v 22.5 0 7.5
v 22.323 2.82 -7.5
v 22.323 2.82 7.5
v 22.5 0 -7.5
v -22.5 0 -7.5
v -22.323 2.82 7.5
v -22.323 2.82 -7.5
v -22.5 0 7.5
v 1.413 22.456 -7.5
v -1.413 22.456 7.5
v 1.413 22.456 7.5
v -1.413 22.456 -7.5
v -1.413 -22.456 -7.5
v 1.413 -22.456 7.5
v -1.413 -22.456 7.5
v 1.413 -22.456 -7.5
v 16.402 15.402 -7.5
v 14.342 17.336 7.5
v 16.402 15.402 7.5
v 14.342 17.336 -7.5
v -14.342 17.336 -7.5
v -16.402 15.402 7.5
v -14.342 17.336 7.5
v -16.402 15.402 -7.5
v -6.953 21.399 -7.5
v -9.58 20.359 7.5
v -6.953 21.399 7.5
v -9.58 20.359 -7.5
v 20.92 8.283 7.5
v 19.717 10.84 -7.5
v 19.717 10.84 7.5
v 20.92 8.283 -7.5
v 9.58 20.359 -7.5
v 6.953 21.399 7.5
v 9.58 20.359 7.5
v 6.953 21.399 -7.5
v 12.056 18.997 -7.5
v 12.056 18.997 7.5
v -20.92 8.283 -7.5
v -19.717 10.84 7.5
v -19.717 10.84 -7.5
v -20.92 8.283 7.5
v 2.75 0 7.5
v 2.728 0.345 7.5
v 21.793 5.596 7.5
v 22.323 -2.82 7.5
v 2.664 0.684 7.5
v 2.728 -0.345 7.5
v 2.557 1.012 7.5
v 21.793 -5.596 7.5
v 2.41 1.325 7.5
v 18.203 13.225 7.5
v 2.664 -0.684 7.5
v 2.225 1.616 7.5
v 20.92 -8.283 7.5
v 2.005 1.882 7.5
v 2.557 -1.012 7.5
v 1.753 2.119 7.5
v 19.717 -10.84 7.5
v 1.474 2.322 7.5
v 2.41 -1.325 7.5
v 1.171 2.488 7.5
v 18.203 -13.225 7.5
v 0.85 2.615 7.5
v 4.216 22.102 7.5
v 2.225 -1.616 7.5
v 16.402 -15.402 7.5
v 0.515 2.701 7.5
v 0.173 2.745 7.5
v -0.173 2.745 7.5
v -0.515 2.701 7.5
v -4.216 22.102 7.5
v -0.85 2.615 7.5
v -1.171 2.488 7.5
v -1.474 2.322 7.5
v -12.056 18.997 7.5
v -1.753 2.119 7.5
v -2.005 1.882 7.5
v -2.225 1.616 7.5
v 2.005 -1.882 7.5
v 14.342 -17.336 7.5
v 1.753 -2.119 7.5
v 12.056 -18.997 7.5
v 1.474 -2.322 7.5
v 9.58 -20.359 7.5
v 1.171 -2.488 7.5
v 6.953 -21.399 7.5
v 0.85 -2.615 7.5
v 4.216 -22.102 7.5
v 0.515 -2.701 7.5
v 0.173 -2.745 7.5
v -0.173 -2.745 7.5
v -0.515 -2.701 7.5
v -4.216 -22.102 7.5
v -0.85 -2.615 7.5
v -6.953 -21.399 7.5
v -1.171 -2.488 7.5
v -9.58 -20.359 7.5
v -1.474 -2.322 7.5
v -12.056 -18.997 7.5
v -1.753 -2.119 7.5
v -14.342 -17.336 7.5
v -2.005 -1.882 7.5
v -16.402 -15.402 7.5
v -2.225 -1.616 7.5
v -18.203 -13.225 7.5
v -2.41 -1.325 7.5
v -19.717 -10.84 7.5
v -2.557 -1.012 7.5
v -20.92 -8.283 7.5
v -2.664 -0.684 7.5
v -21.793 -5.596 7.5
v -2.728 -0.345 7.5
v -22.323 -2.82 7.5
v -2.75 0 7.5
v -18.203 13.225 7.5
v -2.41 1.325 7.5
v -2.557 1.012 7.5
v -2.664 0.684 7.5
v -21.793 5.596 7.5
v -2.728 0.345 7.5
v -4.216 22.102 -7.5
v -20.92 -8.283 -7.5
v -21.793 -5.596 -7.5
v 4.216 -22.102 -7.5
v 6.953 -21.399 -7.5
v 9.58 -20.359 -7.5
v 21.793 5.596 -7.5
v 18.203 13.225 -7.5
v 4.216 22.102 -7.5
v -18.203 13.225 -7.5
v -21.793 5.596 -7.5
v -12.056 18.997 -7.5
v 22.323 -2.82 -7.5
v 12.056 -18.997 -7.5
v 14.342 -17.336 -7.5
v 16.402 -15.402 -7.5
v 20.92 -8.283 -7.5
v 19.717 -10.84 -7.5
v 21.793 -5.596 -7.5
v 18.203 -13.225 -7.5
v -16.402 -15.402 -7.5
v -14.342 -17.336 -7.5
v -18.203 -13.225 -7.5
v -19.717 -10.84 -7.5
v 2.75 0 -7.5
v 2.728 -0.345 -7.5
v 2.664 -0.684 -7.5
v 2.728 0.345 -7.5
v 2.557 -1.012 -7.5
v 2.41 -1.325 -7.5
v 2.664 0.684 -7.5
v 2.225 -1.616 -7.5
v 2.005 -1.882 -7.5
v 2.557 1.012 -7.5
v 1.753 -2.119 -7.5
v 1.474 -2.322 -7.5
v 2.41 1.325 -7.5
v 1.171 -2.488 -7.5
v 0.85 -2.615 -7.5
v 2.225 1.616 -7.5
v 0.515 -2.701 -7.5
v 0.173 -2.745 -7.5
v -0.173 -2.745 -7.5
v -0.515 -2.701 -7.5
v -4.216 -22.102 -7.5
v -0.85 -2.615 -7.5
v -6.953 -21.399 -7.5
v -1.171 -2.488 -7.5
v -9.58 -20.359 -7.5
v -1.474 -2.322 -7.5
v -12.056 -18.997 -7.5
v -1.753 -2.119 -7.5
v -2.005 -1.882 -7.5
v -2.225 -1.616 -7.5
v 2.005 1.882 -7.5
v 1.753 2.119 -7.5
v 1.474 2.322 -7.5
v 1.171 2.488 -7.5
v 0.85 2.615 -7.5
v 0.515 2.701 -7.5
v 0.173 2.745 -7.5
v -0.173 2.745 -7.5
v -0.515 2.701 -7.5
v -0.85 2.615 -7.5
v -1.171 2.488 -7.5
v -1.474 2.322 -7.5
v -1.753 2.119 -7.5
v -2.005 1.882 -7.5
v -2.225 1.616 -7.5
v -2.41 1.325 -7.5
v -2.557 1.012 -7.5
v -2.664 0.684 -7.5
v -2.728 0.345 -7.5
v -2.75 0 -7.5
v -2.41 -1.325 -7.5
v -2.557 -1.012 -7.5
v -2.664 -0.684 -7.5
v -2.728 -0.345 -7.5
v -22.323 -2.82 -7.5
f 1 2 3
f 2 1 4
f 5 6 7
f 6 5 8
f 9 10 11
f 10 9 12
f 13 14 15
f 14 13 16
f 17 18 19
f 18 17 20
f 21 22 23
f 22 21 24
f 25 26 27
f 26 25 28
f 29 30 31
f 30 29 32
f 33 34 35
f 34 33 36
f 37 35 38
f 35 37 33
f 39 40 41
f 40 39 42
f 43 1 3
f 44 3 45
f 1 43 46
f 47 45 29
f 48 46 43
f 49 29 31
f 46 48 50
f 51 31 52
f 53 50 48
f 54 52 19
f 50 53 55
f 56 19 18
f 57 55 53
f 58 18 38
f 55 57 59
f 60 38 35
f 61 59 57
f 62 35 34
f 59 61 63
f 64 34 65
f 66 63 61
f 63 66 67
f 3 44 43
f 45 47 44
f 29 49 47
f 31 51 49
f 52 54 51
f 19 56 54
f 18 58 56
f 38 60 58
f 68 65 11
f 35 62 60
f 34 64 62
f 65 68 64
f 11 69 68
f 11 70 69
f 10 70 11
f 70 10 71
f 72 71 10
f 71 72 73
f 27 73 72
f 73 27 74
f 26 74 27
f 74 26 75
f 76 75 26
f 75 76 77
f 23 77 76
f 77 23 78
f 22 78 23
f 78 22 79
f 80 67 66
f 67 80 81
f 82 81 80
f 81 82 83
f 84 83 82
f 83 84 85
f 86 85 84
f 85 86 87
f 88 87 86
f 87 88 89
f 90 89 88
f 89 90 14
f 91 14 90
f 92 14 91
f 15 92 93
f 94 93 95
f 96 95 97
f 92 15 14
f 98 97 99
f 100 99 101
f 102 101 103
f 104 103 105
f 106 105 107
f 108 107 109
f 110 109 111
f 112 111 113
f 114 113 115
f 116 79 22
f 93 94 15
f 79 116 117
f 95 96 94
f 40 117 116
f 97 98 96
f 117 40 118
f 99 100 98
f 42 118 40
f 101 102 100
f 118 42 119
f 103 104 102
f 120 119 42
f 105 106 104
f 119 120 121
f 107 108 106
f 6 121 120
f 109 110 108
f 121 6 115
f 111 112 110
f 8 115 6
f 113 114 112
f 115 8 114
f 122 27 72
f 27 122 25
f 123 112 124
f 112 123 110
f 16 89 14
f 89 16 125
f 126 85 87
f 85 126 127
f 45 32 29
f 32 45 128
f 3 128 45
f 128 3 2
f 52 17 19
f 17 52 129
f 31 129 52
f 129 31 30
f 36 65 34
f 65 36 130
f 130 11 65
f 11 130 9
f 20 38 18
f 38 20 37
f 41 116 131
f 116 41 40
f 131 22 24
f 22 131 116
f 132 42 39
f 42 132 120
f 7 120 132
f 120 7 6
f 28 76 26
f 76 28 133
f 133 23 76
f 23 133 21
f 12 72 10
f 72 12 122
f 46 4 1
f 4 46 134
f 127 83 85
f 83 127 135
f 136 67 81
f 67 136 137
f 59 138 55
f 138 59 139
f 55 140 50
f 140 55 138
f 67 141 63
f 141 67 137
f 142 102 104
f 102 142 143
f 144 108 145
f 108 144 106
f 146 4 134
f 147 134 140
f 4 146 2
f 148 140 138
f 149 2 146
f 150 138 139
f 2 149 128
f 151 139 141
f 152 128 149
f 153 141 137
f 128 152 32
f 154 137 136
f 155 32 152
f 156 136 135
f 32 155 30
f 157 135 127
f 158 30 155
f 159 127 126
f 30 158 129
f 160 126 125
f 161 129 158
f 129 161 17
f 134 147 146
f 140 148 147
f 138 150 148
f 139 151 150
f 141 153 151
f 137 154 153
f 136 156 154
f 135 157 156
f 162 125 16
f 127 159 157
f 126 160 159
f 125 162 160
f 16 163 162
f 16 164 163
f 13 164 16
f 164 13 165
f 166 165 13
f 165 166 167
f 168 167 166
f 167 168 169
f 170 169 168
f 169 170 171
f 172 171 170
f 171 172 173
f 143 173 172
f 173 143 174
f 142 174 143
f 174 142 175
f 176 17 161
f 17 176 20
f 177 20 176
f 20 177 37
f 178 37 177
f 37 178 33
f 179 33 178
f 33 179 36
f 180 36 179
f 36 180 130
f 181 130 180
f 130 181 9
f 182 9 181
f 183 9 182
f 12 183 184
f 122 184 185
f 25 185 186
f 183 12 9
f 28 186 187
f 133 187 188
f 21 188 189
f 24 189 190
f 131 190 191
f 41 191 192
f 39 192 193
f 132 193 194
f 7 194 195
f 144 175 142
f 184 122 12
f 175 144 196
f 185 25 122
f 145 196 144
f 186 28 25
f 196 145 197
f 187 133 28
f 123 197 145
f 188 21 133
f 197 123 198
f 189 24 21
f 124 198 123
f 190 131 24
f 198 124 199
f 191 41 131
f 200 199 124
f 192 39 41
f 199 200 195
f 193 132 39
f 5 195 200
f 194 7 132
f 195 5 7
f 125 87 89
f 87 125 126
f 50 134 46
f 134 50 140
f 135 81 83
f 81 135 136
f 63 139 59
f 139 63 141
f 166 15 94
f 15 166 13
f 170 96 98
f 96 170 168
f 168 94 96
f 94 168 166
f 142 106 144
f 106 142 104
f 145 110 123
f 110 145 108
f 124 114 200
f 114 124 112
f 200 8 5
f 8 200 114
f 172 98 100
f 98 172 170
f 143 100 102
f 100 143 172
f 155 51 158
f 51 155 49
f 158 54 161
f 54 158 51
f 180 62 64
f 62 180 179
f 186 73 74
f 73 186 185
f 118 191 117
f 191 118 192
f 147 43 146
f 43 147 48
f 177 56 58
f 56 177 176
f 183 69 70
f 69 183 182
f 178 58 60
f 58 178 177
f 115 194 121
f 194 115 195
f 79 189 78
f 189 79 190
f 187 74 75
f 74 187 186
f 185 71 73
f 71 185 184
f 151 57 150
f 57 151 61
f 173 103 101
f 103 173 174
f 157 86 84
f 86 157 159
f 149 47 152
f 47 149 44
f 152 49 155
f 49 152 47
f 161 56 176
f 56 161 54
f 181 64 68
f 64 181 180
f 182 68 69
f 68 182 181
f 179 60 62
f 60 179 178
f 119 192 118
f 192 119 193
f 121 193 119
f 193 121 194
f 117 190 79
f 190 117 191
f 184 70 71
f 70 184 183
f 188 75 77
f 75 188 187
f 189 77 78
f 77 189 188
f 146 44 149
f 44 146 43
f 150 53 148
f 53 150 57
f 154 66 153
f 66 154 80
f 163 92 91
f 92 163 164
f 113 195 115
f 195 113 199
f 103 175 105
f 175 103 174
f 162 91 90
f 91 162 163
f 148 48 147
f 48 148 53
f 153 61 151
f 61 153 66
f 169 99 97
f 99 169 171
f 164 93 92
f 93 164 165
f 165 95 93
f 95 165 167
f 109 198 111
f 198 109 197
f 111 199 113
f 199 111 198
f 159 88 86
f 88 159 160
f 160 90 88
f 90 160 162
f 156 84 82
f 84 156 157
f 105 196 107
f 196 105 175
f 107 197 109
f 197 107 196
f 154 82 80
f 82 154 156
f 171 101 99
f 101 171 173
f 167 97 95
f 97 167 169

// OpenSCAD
$fn = 50;


difference() {
	union() {
		translate(v = [0, 0, -7.5000000000]) {
			cylinder(h = 15, r = 22.5000000000);
		}
	}
	union() {
		translate(v = [0, 0, -100.0000000000]) {
			cylinder(h = 200, r = 2.7500000000);
		}
	}
}
